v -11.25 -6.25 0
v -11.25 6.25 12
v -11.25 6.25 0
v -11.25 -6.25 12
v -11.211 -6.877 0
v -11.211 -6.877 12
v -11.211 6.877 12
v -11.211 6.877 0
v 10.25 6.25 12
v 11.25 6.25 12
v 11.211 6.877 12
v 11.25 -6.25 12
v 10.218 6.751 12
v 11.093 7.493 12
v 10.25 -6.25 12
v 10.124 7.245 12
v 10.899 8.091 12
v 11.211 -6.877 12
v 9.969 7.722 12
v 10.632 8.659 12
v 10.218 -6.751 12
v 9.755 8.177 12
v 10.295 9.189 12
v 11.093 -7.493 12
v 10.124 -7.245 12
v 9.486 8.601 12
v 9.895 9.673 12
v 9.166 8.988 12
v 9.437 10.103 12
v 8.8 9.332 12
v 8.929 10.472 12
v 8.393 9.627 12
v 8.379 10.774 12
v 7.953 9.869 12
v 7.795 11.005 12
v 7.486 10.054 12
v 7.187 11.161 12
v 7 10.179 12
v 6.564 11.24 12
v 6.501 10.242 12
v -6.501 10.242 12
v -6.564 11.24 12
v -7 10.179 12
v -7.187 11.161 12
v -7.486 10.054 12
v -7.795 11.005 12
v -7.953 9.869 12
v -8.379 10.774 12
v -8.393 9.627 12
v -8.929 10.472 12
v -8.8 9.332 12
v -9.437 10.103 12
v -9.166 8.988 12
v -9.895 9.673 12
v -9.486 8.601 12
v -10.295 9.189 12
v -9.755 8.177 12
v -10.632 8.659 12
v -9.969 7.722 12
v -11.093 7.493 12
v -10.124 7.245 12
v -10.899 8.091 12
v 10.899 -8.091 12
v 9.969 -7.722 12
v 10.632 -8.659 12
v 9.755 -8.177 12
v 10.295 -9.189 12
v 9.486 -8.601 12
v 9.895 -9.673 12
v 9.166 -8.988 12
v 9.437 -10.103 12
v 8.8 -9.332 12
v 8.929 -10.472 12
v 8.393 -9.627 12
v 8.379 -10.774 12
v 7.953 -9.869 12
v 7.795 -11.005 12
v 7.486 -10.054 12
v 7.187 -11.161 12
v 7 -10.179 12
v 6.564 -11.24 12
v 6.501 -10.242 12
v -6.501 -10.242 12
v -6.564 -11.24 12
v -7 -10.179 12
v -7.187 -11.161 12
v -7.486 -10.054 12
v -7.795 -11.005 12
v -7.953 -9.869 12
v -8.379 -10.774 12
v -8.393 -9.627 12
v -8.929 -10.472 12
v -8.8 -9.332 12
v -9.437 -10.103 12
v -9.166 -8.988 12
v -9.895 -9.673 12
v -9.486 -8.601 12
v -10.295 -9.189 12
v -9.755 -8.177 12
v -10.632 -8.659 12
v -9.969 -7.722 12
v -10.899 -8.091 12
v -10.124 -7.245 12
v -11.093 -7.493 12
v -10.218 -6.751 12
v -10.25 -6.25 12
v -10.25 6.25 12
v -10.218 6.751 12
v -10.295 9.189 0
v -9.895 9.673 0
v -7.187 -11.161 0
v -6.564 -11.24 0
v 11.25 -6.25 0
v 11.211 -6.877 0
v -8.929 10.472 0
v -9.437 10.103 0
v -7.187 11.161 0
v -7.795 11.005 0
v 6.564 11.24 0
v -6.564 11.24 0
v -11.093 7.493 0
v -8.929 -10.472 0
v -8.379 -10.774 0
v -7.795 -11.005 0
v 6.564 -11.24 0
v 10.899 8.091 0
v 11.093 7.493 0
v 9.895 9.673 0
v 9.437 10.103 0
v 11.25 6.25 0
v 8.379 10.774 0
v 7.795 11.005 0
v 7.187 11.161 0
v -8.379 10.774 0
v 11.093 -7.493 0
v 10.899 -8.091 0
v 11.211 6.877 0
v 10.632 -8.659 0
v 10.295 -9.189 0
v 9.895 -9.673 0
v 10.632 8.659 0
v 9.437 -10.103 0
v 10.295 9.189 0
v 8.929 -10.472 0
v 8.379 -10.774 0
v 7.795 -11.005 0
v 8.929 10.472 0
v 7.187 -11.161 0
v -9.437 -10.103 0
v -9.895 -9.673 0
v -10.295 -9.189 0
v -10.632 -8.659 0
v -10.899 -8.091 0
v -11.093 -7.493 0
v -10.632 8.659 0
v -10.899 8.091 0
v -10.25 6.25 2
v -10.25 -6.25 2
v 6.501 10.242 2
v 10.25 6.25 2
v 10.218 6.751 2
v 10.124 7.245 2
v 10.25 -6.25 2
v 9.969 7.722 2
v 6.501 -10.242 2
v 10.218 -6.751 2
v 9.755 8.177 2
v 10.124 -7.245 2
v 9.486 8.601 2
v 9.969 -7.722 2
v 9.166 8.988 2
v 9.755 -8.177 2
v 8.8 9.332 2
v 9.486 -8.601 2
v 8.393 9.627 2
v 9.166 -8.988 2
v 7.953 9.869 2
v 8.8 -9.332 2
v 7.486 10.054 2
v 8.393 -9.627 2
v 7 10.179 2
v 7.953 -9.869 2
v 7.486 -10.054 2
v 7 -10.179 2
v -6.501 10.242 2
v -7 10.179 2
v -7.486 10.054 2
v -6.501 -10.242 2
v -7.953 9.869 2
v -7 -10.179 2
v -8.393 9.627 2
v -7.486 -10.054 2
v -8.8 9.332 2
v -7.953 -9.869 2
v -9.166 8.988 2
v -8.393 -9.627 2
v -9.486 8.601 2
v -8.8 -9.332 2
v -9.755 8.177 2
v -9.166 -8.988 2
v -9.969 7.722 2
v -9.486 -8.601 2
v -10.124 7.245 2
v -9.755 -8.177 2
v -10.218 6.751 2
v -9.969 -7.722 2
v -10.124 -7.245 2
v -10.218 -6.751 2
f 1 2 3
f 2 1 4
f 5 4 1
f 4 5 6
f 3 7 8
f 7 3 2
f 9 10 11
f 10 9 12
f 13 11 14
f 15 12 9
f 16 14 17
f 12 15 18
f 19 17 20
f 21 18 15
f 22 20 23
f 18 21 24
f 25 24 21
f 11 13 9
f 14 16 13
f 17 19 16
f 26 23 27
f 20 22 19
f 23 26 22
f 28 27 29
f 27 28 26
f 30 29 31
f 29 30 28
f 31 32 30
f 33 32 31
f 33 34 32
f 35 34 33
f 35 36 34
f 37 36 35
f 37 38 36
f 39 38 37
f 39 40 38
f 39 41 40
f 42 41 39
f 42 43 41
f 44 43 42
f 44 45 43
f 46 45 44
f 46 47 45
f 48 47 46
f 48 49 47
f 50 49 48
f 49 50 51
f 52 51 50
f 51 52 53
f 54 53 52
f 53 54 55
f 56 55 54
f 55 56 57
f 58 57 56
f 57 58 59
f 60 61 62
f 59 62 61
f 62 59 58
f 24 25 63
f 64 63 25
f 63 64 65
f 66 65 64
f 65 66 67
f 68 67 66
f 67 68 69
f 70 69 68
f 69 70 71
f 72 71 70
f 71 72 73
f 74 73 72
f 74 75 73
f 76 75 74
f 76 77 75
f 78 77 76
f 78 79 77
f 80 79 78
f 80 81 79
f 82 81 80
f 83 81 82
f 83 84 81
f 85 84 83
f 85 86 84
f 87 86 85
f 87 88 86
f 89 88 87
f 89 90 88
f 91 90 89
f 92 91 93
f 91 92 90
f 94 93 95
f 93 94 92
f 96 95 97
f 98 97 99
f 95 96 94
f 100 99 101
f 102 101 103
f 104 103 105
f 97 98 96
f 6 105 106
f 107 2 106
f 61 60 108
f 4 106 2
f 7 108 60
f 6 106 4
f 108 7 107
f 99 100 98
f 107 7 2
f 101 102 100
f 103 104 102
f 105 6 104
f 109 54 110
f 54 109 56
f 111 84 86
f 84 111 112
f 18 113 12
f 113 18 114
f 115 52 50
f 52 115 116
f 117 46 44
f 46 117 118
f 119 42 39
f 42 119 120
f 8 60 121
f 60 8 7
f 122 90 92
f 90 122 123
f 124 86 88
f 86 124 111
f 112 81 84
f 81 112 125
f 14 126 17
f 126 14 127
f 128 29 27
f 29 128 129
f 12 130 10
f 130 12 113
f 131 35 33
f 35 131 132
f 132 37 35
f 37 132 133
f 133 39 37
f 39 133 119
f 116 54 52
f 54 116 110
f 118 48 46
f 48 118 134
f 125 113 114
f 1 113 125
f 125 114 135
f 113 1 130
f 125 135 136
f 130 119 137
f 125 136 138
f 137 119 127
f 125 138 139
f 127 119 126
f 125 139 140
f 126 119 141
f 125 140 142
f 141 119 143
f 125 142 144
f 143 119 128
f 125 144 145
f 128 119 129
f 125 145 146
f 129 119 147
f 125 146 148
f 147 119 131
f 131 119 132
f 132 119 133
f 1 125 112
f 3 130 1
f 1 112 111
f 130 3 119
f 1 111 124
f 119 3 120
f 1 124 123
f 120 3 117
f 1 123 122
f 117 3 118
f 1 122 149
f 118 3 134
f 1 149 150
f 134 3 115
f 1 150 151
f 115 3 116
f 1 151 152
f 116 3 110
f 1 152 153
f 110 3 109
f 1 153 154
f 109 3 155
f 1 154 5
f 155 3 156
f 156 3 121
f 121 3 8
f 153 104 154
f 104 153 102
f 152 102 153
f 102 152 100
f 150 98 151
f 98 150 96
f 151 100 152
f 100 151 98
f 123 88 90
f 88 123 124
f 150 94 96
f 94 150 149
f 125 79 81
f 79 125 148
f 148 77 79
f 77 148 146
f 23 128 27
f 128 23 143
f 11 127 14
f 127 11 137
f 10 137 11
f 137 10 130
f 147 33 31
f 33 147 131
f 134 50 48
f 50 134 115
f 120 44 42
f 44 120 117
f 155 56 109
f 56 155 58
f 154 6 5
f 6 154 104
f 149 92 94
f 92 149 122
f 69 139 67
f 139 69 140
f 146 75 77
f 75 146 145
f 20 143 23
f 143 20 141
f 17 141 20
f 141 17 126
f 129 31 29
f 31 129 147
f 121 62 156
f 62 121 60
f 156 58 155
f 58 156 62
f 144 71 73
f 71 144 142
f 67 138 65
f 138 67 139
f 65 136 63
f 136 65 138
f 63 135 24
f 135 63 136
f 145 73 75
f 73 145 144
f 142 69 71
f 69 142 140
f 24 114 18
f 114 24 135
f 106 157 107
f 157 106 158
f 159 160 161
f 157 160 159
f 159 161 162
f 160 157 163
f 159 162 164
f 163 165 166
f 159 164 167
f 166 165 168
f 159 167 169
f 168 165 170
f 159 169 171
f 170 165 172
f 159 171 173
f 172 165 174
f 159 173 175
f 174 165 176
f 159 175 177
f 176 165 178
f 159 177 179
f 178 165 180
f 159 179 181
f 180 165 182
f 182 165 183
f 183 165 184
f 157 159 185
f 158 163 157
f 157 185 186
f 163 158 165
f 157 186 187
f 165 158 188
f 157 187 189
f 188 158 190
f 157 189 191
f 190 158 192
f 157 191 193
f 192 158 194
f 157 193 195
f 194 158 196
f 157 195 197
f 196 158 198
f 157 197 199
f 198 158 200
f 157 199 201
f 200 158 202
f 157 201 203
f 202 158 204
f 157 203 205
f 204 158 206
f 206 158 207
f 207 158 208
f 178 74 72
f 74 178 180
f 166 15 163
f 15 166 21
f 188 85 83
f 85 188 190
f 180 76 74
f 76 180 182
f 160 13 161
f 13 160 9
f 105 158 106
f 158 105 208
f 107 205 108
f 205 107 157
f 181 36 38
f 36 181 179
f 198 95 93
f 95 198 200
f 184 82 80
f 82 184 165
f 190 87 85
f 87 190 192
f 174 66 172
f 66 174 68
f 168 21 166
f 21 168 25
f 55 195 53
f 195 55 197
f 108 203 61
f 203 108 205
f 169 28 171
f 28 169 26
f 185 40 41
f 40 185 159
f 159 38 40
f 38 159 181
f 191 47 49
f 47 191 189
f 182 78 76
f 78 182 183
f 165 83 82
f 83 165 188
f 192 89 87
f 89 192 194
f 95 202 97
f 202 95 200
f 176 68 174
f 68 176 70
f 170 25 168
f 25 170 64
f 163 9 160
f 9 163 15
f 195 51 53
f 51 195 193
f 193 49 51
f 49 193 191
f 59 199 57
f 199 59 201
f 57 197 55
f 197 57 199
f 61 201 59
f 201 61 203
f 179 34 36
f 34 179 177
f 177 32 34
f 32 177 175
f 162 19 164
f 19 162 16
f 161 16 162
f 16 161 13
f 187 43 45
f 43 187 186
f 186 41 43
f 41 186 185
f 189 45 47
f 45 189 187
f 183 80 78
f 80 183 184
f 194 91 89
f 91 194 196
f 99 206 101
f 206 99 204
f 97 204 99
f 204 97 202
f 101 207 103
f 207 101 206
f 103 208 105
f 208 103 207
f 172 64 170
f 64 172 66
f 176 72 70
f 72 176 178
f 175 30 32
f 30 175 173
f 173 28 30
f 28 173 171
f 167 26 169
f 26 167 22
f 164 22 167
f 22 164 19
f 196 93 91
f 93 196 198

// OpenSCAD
$fn = 50;


difference() {
	union() {
		hull() {
			translate(v = [-6.2500000000, 6.2500000000, 0]) {
				cylinder(h = 12, r = 5);
			}
			translate(v = [6.2500000000, 6.2500000000, 0]) {
				cylinder(h = 12, r = 5);
			}
			translate(v = [-6.2500000000, -6.2500000000, 0]) {
				cylinder(h = 12, r = 5);
			}
			translate(v = [6.2500000000, -6.2500000000, 0]) {
				cylinder(h = 12, r = 5);
			}
		}
	}
	union() {
		translate(v = [0, 0, 2]) {
			hull() {
				translate(v = [-6.2500000000, 6.2500000000, 0]) {
					cylinder(h = 10, r = 4);
				}
				translate(v = [6.2500000000, 6.2500000000, 0]) {
					cylinder(h = 10, r = 4);
				}
				translate(v = [-6.2500000000, -6.2500000000, 0]) {
					cylinder(h = 10, r = 4);
				}
				translate(v = [6.2500000000, -6.2500000000, 0]) {
					cylinder(h = 10, r = 4);
				}
			}
		}
	}
}
